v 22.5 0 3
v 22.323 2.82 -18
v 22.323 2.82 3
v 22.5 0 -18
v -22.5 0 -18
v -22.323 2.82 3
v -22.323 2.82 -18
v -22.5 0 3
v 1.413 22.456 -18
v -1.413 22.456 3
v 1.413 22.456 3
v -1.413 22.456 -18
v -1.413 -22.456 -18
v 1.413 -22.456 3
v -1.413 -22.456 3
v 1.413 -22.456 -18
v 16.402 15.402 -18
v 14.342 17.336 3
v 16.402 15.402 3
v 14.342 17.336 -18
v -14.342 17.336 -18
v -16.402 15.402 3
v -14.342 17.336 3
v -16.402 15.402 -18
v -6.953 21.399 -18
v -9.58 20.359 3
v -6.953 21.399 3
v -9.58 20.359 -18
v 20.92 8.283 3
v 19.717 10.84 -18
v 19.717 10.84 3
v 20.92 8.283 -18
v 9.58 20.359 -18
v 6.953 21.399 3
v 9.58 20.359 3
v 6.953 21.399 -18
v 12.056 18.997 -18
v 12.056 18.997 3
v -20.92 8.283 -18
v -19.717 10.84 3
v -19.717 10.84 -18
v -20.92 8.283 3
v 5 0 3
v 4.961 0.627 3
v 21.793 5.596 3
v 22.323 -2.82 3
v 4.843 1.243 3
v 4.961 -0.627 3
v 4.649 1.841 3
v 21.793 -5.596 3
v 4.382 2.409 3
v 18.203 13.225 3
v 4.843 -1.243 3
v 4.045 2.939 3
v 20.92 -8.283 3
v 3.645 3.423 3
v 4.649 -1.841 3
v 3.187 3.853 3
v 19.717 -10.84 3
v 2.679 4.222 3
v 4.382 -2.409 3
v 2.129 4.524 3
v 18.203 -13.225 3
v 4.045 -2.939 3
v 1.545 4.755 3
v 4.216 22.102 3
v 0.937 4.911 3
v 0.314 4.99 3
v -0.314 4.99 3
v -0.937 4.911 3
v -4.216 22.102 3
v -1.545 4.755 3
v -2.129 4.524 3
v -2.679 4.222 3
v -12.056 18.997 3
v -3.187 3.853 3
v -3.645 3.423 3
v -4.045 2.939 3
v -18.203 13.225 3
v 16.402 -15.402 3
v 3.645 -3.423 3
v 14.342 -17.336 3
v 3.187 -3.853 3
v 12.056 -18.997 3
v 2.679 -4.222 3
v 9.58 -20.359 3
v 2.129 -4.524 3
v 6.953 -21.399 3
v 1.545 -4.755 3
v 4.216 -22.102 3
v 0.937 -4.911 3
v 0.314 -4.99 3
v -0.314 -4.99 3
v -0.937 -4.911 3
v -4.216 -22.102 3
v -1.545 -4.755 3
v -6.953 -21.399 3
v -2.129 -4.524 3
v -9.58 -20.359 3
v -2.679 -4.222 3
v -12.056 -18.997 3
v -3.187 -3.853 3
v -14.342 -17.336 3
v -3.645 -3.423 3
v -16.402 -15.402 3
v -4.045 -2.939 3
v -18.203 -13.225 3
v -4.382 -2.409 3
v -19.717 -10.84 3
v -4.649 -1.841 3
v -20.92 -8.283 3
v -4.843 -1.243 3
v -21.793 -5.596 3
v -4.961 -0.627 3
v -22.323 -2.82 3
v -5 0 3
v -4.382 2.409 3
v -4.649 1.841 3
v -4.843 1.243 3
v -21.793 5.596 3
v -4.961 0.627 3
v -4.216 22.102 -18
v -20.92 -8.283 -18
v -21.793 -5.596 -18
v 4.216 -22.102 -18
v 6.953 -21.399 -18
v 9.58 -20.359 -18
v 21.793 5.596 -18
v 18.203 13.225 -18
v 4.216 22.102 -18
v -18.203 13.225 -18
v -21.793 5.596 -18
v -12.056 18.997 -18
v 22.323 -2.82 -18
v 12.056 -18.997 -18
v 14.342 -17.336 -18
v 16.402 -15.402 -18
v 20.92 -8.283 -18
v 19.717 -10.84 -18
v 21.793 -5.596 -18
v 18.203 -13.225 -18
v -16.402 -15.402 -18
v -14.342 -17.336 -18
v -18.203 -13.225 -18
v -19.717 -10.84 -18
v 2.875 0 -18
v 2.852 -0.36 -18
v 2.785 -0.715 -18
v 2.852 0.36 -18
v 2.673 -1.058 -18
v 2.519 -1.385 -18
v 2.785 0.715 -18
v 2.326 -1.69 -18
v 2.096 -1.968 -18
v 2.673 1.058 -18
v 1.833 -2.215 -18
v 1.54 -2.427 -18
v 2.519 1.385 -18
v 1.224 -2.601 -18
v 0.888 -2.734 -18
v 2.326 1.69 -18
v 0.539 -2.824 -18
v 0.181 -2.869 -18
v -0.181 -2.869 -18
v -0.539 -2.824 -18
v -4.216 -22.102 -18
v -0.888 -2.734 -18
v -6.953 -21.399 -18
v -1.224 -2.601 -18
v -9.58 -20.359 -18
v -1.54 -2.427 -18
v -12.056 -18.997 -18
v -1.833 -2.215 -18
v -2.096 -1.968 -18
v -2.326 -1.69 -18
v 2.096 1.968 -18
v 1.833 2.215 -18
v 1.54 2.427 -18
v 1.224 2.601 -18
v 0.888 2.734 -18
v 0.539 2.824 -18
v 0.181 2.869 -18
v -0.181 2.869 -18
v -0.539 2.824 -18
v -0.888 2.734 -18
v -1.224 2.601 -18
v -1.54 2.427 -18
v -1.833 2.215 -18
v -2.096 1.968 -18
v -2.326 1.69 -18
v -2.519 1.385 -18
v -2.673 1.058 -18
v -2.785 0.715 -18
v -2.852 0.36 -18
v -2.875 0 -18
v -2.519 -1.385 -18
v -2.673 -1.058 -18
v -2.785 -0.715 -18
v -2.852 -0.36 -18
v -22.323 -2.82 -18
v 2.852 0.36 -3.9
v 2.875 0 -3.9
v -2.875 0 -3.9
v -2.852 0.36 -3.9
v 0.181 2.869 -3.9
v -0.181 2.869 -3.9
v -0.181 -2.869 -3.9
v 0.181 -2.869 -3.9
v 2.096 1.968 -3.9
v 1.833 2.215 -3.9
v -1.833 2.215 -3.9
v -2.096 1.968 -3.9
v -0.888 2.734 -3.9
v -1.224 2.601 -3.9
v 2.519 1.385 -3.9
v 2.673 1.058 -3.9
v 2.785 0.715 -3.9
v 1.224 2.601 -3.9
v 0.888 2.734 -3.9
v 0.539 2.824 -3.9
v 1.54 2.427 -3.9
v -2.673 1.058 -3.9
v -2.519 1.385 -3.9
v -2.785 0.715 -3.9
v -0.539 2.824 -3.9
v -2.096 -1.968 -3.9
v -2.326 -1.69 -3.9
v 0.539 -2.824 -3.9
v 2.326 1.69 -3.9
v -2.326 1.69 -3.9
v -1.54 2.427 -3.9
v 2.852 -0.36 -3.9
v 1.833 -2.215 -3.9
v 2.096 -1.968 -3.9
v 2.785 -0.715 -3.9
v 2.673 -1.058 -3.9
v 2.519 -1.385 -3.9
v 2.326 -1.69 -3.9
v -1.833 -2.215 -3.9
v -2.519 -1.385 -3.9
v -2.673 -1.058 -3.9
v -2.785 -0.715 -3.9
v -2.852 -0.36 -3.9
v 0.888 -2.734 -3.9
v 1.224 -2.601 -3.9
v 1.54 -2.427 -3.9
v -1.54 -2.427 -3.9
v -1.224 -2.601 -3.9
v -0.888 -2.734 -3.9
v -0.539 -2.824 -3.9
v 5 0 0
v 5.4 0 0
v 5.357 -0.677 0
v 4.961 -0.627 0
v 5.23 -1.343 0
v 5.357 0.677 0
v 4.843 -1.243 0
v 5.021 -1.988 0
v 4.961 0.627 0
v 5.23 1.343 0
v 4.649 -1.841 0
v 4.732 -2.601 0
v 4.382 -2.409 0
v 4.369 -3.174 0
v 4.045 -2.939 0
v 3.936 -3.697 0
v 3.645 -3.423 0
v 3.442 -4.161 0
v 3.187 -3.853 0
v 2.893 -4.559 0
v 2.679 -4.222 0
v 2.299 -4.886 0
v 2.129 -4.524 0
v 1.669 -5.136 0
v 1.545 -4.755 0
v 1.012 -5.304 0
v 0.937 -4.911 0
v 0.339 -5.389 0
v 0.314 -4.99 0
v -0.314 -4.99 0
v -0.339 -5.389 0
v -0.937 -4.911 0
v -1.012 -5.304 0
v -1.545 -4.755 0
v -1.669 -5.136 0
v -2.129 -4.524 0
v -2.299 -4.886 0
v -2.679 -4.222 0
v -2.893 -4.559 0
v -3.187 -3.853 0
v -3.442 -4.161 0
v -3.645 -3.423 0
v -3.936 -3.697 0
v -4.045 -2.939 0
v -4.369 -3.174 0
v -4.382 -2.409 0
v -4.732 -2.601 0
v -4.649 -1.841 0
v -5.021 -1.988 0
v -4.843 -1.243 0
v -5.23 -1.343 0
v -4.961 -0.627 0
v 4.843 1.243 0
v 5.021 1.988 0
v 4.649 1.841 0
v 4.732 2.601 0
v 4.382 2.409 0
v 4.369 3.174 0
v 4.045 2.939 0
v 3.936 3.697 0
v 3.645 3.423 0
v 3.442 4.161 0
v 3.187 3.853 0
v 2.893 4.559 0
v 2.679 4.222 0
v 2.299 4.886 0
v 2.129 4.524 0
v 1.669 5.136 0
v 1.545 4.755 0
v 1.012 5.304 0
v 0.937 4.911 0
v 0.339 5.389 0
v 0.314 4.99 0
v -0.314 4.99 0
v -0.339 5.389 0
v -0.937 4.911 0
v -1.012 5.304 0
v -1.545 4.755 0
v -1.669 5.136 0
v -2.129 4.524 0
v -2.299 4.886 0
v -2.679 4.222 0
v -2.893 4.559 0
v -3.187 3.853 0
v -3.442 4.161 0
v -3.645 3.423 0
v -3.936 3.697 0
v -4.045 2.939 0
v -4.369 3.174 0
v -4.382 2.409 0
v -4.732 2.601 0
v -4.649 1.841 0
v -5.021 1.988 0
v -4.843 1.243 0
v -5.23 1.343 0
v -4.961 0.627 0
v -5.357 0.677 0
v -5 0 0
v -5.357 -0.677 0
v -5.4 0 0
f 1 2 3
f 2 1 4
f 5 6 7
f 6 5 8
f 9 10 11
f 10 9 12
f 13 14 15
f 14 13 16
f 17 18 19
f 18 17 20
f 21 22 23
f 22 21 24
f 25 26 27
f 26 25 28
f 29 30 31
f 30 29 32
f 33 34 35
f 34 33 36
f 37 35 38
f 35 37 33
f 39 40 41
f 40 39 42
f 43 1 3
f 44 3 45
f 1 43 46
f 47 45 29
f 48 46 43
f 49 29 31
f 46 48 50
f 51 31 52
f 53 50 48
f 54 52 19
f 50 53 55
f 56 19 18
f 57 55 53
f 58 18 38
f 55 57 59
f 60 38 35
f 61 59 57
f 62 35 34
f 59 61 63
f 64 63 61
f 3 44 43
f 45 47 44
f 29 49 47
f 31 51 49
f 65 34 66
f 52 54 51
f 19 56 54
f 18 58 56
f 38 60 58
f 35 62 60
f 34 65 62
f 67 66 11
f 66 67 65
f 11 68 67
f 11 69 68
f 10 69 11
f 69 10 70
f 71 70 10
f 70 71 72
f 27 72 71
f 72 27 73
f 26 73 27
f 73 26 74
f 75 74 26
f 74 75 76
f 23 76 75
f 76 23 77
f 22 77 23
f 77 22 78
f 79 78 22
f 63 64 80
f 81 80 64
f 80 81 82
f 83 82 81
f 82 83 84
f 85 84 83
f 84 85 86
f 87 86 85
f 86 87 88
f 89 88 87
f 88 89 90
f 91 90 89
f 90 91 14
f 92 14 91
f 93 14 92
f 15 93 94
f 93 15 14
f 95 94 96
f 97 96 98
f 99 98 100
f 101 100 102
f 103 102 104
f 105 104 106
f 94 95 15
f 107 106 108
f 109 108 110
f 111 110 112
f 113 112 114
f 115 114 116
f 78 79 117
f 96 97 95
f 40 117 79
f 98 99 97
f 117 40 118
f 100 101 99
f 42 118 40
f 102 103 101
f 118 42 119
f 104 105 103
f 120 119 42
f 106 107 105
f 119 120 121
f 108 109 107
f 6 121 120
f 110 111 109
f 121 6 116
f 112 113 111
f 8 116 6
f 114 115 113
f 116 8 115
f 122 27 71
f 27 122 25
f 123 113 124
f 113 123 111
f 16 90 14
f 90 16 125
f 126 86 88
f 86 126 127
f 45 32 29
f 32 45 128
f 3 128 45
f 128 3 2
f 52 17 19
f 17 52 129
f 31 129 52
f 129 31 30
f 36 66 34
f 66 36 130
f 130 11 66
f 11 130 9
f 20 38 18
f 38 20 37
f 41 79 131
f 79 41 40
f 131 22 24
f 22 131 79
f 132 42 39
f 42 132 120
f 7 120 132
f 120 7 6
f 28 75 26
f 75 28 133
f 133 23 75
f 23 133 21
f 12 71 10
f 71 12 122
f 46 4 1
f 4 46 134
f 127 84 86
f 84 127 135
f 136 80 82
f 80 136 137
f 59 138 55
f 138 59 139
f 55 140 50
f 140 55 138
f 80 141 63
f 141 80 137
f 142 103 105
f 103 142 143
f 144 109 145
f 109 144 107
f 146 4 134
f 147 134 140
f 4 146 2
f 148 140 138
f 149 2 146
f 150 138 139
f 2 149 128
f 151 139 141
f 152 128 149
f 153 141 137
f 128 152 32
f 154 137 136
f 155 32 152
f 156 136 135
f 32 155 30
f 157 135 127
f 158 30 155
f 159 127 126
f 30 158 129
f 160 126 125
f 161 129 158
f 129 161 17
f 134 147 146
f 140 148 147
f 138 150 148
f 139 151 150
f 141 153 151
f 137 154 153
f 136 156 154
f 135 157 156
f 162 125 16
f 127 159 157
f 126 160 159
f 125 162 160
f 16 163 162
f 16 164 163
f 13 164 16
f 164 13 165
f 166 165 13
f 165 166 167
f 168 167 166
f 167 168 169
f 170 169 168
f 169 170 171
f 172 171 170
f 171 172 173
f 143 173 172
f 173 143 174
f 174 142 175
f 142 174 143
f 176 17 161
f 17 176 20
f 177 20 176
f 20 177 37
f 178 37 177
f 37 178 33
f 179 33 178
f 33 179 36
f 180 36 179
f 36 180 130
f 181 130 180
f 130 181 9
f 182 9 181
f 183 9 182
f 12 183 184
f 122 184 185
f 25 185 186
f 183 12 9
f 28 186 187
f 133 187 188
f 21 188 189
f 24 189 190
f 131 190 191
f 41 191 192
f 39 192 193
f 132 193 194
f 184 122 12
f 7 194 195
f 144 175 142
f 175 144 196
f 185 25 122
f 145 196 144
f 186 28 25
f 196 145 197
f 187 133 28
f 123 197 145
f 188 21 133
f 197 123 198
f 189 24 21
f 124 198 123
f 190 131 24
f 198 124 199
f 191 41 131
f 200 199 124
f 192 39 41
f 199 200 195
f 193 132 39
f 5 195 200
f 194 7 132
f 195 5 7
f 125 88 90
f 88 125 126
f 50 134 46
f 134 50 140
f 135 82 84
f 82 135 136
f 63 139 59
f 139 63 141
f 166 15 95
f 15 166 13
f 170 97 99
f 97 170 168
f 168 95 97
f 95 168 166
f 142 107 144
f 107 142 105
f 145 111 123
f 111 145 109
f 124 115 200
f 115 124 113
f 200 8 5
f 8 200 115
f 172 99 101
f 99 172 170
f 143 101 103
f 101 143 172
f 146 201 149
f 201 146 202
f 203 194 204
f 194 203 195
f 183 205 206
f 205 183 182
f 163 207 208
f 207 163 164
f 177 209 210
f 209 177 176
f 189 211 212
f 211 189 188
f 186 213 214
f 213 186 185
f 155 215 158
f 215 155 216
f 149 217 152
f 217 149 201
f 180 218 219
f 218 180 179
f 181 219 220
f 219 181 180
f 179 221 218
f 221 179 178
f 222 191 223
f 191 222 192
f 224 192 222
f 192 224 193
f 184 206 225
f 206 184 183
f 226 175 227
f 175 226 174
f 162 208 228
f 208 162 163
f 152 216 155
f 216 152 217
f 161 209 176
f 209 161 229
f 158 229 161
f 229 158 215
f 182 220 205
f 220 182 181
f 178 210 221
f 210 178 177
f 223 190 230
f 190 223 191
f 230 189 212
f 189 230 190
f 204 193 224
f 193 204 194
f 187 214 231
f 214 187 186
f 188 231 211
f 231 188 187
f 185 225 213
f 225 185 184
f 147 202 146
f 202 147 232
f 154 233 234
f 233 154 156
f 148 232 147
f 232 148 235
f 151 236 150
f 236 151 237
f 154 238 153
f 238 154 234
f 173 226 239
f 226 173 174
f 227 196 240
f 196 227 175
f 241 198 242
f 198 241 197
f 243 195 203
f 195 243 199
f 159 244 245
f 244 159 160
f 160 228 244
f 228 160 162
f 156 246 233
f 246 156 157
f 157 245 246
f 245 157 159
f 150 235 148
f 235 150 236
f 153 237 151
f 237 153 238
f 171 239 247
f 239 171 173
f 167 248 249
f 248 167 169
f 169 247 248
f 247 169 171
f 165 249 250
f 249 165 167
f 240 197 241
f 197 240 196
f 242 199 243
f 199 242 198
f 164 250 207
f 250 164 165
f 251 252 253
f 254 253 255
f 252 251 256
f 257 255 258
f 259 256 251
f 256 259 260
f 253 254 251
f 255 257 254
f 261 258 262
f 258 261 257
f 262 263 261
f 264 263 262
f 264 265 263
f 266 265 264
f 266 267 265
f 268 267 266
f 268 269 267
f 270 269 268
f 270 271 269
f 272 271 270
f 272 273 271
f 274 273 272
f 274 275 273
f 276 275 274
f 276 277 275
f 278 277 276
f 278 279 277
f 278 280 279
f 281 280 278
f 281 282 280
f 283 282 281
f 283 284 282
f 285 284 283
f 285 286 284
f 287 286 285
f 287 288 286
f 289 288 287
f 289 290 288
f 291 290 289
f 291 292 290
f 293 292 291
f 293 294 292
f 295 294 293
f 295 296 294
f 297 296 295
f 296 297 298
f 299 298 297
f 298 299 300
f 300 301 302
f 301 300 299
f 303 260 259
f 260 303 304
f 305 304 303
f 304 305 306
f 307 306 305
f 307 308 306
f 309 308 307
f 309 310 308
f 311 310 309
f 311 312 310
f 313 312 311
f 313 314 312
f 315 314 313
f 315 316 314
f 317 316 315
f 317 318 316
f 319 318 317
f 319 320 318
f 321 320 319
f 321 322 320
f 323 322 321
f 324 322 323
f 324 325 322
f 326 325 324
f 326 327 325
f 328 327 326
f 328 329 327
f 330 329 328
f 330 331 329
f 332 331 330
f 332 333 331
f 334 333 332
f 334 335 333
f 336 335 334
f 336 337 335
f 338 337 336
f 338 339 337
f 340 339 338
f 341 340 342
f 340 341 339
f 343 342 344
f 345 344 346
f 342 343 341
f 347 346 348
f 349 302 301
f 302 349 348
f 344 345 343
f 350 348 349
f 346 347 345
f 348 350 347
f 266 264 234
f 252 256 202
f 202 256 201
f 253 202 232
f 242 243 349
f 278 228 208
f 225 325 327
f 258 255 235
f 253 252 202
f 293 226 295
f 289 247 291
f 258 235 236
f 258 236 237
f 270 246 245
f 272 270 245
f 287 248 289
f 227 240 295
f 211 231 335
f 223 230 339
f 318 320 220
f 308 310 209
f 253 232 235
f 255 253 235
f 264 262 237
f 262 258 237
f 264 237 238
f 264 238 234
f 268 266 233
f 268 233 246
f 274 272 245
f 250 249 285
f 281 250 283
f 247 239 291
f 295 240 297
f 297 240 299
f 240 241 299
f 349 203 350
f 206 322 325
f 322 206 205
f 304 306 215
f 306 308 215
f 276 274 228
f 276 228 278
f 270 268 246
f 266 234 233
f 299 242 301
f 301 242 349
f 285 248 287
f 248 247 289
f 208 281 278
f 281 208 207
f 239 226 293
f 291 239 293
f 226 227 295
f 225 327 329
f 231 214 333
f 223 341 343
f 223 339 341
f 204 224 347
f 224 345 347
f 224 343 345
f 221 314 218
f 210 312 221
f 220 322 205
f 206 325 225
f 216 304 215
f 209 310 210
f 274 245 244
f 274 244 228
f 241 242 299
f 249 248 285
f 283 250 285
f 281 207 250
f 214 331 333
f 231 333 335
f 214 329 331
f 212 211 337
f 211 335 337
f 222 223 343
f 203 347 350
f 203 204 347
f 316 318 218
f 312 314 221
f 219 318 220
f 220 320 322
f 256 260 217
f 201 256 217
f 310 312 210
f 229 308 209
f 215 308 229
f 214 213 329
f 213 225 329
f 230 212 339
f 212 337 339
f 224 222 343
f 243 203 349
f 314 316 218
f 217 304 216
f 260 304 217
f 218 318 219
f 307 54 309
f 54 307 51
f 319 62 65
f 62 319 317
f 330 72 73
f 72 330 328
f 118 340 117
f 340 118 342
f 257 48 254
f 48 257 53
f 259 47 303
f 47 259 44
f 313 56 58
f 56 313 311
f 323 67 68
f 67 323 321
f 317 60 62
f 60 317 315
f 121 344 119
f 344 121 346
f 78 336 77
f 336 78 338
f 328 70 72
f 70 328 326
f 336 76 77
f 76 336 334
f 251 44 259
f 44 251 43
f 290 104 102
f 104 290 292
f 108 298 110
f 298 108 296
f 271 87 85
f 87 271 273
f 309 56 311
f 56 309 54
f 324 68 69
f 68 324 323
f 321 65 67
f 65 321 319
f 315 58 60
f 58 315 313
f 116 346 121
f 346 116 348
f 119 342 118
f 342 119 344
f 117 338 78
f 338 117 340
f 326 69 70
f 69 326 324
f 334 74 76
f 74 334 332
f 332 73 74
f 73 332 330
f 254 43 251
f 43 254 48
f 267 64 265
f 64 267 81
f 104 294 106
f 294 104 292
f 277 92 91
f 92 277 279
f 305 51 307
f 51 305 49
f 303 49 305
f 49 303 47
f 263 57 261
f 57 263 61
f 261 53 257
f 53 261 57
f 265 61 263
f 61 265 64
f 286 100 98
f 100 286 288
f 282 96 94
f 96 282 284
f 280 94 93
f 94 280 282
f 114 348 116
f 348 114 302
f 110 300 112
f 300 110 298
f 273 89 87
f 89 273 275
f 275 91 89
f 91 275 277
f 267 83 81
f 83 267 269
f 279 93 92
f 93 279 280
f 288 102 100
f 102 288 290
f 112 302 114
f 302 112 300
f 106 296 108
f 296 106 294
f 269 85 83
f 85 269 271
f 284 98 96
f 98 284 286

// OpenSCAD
$fn = 50;


difference() {
	union() {
		translate(v = [0, 0, -18.0000000000]) {
			cylinder(h = 21, r = 22.5000000000);
		}
		#translate(v = [0, 0, -21.0000000000]) {
			cylinder(h = 21, r = 2.8750000000);
		}
	}
	union() {
		translate(v = [0, 0, 0]) {
			rotate(a = [0, 0, 0]) {
				difference() {
					union() {
						translate(v = [0, 0, -21.0000000000]) {
							cylinder(h = 21, r = 2.6000000000);
						}
						translate(v = [0, 0, -3.9000000000]) {
							cylinder(h = 3.9000000000, r1 = 2.8750000000, r2 = 5.4000000000);
						}
						translate(v = [0, 0, -21.0000000000]) {
							cylinder(h = 21, r = 2.8750000000);
						}
						translate(v = [0, 0, -21.0000000000]) {
							cylinder(h = 21, r = 2.6000000000);
						}
					}
					union();
				}
			}
		}
		#cylinder(h = 3, r = 5.0000000000);
	}
}
